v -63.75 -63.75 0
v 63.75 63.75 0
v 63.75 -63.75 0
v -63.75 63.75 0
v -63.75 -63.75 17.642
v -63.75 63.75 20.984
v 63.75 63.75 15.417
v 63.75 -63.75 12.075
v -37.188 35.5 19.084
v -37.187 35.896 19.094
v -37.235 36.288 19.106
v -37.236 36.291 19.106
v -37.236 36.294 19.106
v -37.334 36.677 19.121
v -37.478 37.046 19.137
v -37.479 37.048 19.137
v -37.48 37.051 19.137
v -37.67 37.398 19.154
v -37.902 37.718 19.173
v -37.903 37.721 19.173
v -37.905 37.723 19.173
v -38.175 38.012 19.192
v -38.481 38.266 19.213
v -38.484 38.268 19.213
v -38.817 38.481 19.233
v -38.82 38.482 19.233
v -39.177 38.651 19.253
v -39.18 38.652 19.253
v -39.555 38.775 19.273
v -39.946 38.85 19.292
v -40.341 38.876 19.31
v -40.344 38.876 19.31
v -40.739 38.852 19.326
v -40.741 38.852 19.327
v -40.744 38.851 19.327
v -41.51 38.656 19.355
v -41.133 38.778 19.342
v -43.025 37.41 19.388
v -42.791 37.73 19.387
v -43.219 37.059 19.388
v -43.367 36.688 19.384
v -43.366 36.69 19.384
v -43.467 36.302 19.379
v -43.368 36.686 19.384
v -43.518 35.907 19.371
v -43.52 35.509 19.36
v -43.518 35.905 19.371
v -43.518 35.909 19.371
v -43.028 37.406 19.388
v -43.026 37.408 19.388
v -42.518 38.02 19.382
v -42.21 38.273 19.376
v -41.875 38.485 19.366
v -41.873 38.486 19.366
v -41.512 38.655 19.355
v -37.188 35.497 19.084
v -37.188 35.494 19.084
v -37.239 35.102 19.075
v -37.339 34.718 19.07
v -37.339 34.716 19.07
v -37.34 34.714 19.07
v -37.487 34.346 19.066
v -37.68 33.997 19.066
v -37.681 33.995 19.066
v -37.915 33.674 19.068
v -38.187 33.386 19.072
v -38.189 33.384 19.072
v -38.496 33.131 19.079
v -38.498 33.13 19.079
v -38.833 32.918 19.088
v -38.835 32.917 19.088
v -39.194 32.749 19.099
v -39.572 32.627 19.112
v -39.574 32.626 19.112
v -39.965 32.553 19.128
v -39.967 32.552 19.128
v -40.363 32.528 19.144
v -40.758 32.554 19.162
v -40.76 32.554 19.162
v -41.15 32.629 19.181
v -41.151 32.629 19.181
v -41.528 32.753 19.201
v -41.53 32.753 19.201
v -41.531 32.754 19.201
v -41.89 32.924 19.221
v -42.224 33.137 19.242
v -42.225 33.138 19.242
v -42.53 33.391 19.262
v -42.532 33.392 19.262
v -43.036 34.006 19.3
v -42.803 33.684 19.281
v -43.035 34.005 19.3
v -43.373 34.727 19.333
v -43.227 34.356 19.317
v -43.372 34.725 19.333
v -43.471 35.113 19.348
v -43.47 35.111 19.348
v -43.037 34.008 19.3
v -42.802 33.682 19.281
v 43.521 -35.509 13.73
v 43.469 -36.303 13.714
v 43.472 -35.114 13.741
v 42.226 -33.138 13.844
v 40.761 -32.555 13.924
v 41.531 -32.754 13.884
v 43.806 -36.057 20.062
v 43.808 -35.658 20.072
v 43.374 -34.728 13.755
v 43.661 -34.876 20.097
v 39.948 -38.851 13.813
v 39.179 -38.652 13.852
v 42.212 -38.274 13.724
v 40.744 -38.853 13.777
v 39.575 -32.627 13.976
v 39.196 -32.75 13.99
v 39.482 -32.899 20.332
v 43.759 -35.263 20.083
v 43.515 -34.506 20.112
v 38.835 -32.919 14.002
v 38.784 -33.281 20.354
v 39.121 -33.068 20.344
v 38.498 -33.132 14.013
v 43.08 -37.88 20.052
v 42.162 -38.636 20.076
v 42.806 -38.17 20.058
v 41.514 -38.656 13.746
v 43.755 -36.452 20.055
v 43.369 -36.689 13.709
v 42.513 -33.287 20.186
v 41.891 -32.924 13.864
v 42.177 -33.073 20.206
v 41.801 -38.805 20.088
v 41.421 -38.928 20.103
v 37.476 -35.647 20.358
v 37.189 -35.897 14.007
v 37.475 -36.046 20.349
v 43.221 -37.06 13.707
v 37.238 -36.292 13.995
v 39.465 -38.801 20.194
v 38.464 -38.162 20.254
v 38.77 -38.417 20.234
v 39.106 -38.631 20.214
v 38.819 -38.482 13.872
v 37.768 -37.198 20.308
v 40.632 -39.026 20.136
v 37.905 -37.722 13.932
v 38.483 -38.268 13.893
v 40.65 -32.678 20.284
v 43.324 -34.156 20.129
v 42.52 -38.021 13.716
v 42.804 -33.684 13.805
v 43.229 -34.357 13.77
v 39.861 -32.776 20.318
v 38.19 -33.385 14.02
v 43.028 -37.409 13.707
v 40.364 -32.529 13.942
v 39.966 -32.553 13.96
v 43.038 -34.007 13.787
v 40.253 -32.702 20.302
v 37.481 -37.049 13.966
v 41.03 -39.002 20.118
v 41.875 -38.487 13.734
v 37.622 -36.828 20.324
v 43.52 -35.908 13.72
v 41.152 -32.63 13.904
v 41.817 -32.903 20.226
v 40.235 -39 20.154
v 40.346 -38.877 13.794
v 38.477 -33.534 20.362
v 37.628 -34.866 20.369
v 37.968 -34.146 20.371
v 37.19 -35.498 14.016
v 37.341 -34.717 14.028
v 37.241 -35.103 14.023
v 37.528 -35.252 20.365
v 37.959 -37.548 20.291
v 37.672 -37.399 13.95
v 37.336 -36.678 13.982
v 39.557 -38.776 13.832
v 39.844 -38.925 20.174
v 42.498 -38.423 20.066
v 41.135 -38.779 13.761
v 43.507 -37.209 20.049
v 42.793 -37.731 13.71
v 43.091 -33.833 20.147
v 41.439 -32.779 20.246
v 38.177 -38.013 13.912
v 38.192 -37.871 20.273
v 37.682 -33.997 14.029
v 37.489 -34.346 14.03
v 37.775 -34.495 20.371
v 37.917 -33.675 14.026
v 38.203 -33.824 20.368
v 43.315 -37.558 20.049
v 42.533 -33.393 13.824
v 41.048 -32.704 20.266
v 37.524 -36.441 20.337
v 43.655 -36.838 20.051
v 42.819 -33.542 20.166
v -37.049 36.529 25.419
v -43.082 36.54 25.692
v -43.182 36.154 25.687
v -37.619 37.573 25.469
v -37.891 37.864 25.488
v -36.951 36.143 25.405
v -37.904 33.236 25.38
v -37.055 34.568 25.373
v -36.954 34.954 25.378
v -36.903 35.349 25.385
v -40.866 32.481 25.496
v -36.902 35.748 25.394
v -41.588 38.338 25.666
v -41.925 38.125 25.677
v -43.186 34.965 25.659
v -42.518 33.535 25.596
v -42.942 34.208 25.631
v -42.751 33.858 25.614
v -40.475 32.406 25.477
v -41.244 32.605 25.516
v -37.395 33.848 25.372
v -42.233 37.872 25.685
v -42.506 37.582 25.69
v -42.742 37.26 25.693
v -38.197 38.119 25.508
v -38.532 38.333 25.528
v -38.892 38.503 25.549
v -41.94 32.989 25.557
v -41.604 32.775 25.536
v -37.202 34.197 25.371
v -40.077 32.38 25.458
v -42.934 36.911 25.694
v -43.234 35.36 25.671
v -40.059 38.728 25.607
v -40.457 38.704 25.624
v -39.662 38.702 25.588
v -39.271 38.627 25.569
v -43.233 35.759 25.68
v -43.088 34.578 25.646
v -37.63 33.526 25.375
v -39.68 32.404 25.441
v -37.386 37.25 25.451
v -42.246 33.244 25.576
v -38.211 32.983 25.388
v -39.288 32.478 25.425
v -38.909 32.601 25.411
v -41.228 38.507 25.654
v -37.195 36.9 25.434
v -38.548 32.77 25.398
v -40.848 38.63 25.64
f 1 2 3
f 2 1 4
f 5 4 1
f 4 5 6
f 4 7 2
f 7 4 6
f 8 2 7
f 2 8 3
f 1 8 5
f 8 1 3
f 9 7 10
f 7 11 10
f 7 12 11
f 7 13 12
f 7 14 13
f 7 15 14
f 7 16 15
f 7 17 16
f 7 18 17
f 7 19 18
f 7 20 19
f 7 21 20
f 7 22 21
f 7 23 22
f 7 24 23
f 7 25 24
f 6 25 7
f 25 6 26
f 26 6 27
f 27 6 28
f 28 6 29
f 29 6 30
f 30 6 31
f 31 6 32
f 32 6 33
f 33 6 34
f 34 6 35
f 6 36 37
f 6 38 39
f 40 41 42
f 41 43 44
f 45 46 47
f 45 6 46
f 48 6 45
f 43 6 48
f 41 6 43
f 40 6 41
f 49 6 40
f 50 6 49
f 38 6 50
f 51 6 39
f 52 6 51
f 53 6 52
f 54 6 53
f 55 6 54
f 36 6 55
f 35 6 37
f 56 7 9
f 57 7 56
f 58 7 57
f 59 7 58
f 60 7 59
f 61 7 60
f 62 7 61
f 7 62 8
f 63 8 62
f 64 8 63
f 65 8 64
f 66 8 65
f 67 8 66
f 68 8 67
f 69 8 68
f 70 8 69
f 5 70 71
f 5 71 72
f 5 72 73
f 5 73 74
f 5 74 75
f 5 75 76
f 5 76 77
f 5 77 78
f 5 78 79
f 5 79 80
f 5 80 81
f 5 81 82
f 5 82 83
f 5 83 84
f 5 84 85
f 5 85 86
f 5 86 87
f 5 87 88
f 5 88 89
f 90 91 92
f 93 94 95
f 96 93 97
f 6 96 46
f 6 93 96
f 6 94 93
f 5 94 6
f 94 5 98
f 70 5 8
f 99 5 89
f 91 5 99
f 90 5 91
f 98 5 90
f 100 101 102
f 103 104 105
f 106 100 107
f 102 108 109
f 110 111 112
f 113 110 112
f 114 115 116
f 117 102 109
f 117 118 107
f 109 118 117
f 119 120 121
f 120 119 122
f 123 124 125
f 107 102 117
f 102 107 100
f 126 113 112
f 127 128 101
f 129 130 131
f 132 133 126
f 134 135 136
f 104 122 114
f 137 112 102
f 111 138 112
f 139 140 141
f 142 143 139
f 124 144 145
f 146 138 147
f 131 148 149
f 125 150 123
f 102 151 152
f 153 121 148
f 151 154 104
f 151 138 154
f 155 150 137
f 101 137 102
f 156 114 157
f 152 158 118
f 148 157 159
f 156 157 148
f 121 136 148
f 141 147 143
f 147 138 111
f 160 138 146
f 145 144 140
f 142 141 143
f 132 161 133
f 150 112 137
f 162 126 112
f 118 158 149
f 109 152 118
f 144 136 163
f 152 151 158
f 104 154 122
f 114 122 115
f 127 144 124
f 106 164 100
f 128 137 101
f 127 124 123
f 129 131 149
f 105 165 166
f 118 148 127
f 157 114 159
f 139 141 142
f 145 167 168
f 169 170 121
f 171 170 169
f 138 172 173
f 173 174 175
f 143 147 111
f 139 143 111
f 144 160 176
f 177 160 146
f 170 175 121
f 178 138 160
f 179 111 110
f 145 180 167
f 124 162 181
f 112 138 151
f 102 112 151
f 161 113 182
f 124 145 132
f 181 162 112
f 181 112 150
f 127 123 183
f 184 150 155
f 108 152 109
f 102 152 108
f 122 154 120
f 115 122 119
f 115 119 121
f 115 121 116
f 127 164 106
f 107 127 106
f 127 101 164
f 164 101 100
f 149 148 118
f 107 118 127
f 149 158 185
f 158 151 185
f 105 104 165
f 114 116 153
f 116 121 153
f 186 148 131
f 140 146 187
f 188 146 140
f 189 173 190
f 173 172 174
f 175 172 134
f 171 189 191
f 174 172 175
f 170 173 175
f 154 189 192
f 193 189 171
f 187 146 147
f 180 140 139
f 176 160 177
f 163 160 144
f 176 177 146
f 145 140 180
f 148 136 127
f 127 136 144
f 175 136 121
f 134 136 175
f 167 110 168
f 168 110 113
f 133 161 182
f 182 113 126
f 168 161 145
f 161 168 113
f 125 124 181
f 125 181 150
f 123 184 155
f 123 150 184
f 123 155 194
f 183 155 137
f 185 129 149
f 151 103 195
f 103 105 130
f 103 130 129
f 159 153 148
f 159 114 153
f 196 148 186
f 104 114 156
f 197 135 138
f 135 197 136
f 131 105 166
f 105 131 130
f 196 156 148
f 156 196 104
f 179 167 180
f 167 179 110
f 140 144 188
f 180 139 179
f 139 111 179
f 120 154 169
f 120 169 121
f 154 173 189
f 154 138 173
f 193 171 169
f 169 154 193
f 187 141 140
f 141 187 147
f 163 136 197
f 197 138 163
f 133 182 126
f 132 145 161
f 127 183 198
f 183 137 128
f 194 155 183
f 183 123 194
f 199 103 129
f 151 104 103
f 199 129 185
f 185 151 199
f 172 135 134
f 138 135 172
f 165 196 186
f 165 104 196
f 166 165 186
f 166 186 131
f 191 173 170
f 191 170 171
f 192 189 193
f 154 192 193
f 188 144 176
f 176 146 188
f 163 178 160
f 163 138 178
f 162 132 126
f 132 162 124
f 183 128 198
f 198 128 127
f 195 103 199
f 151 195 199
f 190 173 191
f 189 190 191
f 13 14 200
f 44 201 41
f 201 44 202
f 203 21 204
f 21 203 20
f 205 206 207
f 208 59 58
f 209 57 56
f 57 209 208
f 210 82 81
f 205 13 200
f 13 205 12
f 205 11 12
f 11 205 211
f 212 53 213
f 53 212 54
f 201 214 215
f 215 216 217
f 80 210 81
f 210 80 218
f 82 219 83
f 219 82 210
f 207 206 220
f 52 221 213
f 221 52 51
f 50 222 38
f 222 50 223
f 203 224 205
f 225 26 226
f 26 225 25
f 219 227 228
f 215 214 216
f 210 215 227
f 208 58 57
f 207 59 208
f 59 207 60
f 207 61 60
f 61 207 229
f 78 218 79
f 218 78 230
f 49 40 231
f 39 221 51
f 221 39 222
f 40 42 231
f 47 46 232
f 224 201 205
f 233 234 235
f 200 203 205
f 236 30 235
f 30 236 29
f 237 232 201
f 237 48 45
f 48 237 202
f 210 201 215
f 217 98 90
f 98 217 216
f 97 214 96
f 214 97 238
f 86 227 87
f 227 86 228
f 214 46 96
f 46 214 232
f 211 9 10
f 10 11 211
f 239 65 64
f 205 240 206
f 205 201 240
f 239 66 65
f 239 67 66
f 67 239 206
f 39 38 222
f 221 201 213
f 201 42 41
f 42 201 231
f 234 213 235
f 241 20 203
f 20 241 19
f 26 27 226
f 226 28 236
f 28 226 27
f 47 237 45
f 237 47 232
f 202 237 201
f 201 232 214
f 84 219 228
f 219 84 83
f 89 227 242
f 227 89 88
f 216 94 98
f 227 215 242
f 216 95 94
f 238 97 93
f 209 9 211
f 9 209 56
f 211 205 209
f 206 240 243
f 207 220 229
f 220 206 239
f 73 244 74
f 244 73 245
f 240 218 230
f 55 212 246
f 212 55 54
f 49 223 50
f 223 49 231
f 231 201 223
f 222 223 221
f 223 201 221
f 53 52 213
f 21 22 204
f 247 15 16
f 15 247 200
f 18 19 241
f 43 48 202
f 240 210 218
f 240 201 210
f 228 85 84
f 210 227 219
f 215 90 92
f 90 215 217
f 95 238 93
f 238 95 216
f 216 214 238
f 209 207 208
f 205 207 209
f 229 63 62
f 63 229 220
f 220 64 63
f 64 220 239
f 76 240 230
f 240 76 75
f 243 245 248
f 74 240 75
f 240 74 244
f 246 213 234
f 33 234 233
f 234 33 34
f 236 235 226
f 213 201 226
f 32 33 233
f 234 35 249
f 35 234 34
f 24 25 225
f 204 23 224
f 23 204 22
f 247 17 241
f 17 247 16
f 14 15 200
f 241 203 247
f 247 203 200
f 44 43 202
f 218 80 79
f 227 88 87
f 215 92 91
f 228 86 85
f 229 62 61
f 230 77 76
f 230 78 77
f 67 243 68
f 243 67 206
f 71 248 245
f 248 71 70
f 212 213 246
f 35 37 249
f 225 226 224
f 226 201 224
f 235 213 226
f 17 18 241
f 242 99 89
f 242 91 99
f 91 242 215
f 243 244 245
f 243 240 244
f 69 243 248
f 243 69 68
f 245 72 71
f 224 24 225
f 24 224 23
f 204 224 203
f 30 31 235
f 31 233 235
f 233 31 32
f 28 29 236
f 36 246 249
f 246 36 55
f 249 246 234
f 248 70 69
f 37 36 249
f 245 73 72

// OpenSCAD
// Interlocking QA plate, v1.
//
// This code builds a 3D model that can be 3D printed or machined.
//

function in_to_mm(x) = x * 25.4;

x_slope = 1.5; // Slope of the top along x in degrees.
y_slope = 2.5; // Slope of the top along y in degrees.
peg_twist = 3.5; // Twist offset of the mounting pegs in degrees.

base_width = in_to_mm(10.0);
base_width_marg = 1.0; // Some extra width to try counter contraction during printing.
base_height = in_to_mm(1.0);

// The drop at the centre of the cube (along [0,0,1]) due to the x and y slopes.
z_drop = (base_width * 0.5) * tan(x_slope) 
       + (base_width * 0.5) * tan(y_slope);

union() {

difference() {
    // The base cube.
    translate([0, 0, 0])
      linear_extrude(height = base_height)
          square([base_width*0.5 + base_width_marg*0.5, base_width*0.5 + base_width_marg*0.5], center = true);

    // The part at the top being subtracted off.
    translate([0, 0, base_height - z_drop])
      rotate([x_slope, y_slope, 0.0])
        linear_extrude(height = base_height*10.0)
          square([base_width*10.0, base_width*10.0], center = true);

}

translate([0, 0, base_height - z_drop
                             - ( in_to_mm(1.5) * tan(x_slope)
                               + in_to_mm(1.5) * tan(y_slope) ) ])
rotate([0.0, 0.0, peg_twist])
translate([in_to_mm(1.5), -in_to_mm(1.5)])
rotate([x_slope, y_slope, 0.0])
linear_extrude(height = in_to_mm(0.25))
circle(d=in_to_mm(0.25), $fn=50);

translate([0, 0, base_height - z_drop
                             + ( in_to_mm(1.5) * tan(x_slope)
                               + in_to_mm(1.5) * tan(y_slope) ) ])
rotate([0.0, 0.0, peg_twist])
translate([-in_to_mm(1.5), in_to_mm(1.5)])
rotate([x_slope, y_slope, 0.0])
linear_extrude(height = in_to_mm(0.25))
circle(d=in_to_mm(0.25), $fn=50);

}
